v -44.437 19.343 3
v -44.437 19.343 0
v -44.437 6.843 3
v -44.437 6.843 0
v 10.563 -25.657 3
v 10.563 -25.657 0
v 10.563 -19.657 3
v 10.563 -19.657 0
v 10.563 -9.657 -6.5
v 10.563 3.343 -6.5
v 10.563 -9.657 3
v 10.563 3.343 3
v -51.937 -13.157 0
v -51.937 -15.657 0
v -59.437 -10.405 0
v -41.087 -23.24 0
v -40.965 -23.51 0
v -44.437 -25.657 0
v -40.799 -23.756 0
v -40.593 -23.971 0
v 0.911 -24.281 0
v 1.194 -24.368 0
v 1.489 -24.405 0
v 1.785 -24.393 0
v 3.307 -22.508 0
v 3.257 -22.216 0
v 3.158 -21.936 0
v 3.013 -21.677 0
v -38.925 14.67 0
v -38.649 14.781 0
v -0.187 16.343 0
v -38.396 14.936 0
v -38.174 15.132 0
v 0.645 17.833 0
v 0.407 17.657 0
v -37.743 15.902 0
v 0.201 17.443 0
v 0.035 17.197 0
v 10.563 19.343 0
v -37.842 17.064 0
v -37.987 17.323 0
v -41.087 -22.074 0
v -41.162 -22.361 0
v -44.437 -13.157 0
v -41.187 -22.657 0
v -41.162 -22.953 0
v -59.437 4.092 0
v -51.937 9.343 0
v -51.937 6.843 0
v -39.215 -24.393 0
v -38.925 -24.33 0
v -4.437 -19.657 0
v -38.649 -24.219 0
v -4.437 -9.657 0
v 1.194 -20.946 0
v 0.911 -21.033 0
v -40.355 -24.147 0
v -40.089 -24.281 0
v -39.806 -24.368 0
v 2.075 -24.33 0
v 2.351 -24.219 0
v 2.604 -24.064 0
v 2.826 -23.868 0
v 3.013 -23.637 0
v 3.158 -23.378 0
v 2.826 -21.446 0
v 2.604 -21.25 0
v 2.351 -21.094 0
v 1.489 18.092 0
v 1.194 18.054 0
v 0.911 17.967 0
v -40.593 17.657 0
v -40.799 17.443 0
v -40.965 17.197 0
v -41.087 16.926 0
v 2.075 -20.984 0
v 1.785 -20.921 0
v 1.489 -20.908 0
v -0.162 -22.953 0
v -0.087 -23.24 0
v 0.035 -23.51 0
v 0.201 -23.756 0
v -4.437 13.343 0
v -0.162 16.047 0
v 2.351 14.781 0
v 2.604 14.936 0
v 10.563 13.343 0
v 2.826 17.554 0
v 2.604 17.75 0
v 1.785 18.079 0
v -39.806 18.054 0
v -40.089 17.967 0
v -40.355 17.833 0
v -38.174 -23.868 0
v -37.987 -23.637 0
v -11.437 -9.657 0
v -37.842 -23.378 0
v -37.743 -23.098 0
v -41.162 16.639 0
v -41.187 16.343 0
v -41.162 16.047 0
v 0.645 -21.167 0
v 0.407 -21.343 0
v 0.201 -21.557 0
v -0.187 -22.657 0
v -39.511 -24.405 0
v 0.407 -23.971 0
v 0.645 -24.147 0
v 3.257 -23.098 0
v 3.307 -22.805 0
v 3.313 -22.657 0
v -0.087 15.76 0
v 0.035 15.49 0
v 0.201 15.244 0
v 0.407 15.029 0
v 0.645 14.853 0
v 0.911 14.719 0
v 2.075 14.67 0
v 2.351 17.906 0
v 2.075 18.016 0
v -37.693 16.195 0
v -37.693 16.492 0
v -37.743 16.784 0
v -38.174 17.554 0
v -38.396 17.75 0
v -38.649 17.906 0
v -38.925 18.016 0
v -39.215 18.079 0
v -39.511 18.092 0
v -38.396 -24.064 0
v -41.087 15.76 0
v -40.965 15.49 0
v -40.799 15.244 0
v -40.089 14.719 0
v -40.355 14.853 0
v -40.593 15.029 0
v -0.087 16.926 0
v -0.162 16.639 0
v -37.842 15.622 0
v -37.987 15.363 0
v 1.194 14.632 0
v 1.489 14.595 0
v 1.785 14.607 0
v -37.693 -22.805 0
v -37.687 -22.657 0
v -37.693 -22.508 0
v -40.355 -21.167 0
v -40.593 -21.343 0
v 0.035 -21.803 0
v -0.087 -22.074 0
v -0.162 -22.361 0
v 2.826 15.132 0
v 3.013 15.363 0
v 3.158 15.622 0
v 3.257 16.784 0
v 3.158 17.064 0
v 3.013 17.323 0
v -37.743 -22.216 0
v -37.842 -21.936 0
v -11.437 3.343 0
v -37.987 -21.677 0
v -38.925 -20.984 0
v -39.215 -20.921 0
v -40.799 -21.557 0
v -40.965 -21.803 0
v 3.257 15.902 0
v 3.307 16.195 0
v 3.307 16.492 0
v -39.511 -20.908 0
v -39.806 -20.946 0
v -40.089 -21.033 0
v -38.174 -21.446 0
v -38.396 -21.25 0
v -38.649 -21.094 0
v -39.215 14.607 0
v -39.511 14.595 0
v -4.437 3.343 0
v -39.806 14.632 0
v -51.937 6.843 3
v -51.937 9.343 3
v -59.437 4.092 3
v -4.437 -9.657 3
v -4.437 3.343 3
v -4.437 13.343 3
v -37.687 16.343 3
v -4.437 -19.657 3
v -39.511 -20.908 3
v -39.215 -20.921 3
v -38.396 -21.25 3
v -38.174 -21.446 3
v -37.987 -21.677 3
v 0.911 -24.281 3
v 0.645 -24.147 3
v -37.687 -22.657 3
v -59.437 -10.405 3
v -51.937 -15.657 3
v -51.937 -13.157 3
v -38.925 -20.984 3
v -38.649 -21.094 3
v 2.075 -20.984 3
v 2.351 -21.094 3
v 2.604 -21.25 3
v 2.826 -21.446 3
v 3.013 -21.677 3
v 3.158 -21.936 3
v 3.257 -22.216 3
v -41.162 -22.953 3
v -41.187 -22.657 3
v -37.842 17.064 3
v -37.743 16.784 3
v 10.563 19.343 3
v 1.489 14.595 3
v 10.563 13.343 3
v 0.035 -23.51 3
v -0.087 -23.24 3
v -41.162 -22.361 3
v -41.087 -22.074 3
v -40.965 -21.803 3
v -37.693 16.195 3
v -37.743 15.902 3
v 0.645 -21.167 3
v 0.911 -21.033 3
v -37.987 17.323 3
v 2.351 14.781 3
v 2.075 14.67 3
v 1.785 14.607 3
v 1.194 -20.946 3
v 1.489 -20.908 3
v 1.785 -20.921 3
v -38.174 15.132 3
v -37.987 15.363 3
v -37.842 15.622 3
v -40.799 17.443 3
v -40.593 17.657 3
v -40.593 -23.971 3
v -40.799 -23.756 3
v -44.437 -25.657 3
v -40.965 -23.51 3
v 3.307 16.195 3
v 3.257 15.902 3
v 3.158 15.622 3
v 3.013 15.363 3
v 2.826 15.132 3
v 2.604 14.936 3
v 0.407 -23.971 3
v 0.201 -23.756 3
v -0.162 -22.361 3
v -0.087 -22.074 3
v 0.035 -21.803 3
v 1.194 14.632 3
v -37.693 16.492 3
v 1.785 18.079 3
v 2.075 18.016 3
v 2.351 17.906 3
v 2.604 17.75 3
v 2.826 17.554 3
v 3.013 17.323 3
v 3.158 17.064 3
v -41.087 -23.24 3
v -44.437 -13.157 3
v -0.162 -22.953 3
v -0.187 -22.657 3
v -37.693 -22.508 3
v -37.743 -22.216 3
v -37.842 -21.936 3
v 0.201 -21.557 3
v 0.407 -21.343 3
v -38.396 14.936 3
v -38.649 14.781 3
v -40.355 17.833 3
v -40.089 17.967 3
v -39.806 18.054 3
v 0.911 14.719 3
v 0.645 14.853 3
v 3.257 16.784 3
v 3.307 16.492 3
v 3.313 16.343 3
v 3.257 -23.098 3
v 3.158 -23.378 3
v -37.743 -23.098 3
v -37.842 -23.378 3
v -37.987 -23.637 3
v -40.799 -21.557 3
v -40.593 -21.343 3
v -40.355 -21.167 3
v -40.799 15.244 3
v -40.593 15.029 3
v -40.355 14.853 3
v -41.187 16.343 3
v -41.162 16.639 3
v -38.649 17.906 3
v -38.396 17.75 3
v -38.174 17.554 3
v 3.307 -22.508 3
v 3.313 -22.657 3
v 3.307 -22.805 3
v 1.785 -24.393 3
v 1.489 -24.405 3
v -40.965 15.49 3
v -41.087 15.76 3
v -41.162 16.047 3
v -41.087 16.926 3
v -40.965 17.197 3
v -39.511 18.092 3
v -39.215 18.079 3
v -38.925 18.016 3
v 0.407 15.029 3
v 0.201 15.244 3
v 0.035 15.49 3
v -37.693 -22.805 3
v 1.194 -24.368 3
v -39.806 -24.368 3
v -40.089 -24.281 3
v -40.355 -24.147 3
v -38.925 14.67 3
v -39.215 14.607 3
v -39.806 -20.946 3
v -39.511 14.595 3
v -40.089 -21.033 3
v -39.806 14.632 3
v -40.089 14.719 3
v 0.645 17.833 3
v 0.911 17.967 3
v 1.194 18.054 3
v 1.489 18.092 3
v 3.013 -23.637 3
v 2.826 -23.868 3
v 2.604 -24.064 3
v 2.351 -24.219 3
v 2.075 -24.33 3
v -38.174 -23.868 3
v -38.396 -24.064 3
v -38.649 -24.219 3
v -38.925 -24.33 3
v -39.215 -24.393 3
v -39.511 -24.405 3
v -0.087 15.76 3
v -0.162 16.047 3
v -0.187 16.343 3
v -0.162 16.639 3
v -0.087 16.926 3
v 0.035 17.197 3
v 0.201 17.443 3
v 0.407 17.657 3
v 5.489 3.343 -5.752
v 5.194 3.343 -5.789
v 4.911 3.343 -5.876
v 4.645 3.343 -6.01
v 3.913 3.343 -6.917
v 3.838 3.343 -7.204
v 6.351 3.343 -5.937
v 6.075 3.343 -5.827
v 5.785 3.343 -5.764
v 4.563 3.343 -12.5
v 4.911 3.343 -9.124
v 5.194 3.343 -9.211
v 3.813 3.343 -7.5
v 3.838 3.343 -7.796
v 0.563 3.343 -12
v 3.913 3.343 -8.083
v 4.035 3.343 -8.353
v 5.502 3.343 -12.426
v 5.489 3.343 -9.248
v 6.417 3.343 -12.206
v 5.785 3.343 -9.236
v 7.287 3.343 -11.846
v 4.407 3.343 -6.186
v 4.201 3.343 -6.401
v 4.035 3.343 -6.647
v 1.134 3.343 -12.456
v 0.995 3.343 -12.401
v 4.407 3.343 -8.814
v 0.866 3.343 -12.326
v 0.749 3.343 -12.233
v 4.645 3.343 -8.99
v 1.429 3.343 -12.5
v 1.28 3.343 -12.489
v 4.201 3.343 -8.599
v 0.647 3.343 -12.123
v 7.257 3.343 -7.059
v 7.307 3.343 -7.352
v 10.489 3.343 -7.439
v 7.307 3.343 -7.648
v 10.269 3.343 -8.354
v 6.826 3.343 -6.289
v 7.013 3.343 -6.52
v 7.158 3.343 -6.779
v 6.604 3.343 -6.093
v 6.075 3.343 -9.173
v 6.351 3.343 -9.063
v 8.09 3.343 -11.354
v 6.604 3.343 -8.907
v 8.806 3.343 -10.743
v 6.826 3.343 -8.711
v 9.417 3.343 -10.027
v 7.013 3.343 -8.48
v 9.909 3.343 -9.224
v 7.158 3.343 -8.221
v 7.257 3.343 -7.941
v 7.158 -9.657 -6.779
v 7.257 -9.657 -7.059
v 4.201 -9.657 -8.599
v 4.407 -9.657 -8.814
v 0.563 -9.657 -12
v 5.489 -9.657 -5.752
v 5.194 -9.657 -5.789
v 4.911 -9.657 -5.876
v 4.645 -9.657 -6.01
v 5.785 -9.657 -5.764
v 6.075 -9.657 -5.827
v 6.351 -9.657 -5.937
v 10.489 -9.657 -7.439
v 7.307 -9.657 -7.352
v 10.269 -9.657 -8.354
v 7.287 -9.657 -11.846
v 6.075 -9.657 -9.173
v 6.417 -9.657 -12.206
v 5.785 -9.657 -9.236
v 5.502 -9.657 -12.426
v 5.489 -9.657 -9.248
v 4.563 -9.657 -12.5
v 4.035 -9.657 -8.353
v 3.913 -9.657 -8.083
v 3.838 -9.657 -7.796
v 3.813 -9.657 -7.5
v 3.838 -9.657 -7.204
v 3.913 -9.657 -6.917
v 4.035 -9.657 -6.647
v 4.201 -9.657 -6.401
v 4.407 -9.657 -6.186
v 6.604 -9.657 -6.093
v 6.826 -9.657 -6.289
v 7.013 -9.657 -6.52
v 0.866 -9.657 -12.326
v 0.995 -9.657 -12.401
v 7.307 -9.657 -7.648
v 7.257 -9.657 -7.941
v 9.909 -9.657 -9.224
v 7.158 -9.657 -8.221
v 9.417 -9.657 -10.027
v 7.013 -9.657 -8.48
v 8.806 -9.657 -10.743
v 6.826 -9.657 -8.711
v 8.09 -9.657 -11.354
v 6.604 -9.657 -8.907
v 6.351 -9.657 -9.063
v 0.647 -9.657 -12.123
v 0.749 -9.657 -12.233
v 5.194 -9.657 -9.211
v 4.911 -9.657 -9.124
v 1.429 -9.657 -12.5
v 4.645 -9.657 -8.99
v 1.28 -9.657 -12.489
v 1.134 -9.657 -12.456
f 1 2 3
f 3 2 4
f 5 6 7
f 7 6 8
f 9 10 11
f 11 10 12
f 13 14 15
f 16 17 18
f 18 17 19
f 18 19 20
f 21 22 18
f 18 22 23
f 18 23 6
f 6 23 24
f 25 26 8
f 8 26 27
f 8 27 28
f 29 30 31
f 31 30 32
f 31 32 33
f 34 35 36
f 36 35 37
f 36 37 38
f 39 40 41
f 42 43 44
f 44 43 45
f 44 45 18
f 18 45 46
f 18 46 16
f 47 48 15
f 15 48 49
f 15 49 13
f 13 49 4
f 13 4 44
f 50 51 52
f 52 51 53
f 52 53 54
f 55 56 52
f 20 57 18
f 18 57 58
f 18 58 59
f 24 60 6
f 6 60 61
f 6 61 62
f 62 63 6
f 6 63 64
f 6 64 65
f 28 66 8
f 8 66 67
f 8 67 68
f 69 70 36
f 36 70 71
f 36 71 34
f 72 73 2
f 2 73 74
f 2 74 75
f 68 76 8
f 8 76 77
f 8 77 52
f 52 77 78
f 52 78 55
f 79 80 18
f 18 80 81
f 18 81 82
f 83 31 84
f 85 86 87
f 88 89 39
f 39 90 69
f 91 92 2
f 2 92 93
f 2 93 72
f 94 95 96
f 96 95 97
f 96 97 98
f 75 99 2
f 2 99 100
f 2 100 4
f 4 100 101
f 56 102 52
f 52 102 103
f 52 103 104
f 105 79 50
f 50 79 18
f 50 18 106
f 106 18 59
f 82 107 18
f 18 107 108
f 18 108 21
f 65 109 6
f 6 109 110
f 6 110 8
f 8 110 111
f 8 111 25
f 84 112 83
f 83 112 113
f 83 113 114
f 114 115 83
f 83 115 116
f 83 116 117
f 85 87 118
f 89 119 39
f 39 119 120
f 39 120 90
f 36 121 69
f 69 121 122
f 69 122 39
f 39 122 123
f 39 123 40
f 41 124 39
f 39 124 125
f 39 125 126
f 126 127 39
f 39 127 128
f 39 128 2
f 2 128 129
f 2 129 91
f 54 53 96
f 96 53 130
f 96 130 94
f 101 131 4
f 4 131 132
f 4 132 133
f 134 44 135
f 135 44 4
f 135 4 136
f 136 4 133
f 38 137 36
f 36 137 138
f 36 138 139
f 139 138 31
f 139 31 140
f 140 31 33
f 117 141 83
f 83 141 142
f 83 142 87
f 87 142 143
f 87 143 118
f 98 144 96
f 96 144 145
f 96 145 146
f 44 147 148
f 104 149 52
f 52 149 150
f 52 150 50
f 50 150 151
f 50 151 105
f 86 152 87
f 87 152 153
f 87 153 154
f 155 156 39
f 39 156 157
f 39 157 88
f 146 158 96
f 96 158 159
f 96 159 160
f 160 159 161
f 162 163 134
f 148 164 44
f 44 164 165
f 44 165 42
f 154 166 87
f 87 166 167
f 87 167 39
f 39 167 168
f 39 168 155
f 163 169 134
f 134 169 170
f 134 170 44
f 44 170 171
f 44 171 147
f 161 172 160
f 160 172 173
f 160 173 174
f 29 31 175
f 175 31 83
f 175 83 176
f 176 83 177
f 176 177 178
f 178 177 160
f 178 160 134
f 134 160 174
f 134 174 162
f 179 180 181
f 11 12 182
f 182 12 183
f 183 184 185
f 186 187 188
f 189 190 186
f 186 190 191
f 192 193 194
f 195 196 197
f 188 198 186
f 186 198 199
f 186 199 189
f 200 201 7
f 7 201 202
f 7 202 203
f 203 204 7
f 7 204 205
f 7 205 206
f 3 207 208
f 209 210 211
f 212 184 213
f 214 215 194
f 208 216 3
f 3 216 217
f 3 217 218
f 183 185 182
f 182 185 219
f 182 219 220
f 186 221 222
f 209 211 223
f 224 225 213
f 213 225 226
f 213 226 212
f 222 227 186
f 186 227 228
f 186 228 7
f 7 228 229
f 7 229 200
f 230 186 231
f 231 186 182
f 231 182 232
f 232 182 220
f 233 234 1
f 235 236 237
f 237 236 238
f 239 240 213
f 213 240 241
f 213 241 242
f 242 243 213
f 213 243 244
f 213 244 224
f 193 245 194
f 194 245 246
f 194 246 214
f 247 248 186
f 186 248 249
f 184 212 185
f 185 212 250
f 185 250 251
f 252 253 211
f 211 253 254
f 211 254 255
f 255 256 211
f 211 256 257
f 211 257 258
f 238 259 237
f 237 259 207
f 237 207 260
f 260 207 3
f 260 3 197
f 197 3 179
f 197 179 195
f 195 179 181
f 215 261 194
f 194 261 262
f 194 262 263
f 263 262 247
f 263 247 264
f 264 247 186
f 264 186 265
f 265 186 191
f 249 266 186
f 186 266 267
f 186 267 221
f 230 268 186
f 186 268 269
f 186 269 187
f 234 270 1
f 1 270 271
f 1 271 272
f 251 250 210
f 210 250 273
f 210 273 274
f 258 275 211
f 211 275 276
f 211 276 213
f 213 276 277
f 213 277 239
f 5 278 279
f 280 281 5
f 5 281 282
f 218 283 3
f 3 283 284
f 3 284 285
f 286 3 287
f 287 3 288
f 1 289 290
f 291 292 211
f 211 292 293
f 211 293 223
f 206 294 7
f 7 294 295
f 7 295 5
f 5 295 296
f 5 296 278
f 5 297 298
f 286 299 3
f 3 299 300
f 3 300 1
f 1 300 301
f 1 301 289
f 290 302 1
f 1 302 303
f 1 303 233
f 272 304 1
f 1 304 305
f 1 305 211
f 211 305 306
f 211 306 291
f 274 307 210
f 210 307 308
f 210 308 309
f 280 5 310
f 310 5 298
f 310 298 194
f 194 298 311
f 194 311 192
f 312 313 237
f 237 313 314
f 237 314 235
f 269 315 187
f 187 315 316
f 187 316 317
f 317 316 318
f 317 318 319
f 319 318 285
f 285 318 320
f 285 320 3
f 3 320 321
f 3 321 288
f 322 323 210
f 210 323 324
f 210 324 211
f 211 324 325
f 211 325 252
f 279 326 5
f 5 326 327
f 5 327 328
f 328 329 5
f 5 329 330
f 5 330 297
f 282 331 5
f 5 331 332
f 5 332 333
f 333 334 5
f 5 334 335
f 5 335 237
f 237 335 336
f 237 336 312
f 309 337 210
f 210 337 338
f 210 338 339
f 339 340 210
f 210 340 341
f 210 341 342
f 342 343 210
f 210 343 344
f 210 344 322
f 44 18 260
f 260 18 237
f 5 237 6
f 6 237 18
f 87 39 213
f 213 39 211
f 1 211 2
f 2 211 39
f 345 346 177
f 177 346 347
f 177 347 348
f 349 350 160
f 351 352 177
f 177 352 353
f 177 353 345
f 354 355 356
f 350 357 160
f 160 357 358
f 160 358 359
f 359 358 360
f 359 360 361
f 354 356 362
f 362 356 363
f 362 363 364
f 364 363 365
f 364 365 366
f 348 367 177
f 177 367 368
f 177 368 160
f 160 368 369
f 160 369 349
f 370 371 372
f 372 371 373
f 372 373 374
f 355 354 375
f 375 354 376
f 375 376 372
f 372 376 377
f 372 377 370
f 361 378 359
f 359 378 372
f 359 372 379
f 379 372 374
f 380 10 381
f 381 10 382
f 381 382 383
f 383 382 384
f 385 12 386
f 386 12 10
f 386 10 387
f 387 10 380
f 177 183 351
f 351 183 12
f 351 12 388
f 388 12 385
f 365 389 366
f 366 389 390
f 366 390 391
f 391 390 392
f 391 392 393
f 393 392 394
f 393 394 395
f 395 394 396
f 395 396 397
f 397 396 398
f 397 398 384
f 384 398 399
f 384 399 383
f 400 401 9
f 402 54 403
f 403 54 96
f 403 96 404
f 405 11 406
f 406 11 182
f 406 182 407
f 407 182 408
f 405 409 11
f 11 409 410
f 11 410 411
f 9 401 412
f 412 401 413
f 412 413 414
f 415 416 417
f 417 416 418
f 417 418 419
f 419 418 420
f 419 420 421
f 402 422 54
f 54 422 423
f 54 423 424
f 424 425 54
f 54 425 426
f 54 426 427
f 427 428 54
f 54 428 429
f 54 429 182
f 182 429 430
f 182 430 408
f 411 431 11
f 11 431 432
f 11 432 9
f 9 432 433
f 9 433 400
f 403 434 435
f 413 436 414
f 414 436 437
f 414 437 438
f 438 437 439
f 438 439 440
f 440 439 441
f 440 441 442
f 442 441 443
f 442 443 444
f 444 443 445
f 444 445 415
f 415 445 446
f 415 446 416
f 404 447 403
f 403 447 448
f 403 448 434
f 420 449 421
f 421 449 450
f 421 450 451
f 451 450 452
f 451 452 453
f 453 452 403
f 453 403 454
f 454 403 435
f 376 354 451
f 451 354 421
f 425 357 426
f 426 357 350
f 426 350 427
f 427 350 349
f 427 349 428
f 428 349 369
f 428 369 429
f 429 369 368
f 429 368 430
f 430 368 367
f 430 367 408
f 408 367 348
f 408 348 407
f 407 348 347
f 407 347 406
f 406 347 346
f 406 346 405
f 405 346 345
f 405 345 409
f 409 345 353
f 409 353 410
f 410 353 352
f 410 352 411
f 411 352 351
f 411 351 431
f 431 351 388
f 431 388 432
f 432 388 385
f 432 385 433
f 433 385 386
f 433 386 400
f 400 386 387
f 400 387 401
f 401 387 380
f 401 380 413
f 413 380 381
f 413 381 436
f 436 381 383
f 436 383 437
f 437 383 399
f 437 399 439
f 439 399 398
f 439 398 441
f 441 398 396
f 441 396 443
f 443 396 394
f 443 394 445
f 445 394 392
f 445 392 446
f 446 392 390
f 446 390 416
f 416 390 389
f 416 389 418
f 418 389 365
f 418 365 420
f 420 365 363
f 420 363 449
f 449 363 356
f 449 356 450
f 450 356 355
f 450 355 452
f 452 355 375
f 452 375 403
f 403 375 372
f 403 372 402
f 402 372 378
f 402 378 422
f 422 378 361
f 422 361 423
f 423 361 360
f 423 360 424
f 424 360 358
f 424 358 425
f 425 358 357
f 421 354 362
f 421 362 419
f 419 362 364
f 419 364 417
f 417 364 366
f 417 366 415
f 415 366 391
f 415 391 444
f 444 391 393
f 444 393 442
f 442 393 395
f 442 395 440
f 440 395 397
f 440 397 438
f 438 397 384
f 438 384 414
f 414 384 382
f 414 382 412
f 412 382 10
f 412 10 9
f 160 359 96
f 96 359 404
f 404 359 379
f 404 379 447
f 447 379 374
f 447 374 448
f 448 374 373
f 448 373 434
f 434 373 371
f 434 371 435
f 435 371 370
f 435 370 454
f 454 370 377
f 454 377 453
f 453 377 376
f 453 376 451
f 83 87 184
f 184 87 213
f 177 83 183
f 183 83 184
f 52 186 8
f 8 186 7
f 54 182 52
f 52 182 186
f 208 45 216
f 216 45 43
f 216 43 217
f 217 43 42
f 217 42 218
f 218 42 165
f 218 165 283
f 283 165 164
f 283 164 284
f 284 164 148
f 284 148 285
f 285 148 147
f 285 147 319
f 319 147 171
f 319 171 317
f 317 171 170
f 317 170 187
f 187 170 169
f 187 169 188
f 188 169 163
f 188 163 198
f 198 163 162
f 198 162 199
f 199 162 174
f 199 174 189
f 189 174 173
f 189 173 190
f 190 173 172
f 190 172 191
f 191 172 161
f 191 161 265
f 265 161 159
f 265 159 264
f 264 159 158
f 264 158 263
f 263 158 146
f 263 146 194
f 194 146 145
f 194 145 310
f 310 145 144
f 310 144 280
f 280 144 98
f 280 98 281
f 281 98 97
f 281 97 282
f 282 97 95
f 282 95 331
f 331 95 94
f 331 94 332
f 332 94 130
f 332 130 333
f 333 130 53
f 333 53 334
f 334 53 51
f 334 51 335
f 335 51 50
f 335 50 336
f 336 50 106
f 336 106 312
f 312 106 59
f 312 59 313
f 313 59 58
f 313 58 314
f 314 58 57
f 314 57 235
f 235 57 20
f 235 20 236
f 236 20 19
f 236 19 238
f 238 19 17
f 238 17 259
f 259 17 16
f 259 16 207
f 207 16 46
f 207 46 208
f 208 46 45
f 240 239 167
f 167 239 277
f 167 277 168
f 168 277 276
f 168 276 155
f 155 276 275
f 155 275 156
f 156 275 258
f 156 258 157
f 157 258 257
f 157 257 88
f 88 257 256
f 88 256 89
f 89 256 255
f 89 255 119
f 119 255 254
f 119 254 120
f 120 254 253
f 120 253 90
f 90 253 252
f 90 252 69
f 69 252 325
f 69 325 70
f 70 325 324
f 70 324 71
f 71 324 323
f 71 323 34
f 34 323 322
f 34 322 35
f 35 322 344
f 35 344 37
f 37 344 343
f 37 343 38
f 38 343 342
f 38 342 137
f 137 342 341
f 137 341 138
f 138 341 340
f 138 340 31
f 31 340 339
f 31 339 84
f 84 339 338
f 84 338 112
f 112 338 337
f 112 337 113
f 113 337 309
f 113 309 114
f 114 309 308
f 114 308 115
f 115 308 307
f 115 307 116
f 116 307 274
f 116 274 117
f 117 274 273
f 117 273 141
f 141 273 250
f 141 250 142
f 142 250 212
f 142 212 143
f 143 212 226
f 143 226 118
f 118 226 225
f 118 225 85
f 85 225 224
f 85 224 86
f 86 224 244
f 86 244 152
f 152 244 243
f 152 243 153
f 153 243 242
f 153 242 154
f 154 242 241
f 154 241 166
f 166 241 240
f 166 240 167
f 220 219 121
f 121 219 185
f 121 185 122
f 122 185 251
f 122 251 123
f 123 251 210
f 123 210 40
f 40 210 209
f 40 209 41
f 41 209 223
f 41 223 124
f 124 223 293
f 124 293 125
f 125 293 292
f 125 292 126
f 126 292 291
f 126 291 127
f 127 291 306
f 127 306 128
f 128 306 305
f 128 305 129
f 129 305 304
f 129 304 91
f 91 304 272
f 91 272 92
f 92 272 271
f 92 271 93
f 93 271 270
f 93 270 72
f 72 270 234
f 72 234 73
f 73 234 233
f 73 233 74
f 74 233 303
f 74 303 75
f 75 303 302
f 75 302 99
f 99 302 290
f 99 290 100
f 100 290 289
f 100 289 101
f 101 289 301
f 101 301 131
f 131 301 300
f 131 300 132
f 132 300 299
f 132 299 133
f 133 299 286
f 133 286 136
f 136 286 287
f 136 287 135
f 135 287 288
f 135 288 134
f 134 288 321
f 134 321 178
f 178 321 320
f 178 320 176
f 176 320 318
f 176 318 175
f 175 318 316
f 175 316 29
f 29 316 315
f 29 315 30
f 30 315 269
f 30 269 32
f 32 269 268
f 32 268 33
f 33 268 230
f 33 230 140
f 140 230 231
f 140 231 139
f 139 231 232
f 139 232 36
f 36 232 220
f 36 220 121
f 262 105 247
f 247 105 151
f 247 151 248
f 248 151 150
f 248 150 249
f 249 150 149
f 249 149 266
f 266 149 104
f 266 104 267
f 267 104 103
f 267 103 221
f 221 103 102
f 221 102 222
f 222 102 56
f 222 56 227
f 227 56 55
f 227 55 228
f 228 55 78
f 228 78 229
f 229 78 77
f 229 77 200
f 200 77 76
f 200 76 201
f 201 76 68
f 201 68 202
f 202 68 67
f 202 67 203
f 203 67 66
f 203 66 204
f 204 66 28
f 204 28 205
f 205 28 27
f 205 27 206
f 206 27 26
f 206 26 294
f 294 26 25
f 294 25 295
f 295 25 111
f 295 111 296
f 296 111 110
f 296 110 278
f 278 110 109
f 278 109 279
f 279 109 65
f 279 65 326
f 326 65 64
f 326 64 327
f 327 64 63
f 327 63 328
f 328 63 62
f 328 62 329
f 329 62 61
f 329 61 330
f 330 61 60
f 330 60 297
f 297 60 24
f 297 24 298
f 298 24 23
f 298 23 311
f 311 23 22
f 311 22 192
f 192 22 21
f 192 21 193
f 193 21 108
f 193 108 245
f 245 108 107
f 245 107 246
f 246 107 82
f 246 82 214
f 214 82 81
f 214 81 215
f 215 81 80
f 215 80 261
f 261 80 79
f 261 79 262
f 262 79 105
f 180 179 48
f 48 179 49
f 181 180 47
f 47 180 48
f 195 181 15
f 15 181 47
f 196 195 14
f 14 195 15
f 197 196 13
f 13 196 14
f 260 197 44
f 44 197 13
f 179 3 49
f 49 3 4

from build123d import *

# Parameters (mm, degrees)
SKETCH1_W           = 55
SKETCH1_H           = 45
BOSS_EXTRUDE1_DEPTH = 3
SKETCH2_W           = 10
SKETCH2_H           = 13
BOSS_EXTRUDE2_DEPTH = 12.5
SKETCH3_R           = 1.75
CUT_EXTRUDE1_DEPTH  = 13.5
FILLET1_R           = 6
CHAMFER1_SIZE       = 12
FILLET3_R           = 1
SKETCH4_W           = 20
SKETCH4_H           = 10
CUT_EXTRUDE3_DEPTH  = 5
SKETCH7_R           = 1.75
CUT_EXTRUDE4_DEPTH  = 5
BOSS_EXTRUDE4_DEPTH = 3


with BuildPart() as part:
    # Sketch1 → Boss-Extrude1 (new body)
    with BuildSketch(Plane.XY):
        with Locations((-16.936997319, -3.156836461)):
            Rectangle(SKETCH1_W, SKETCH1_H)
    extrude(amount=BOSS_EXTRUDE1_DEPTH)

    # Sketch2 → Boss-Extrude2 (add)
    with BuildSketch(Plane(origin=(0, 0, 0), x_dir=(-1, 0, 0), z_dir=(0, 0, -1))):
        with Locations((-5.563002681, -3.156836461)):
            Rectangle(SKETCH2_W, SKETCH2_H)
    extrude(amount=BOSS_EXTRUDE2_DEPTH)

    # Sketch3 → Cut-Extrude1 (cut)
    with BuildSketch(Plane(origin=(0, 3.343163539, 0), x_dir=(1, 0, 0), z_dir=(0, 1, 0))):
        with Locations(Location((5.563002681, 7.5, 0), (0, 0, 180))):
            Circle(SKETCH3_R)
    extrude(amount=-CUT_EXTRUDE1_DEPTH, mode=Mode.SUBTRACT)

    # Fillet1
    fillet1_edges = [part.edges().sort_by_distance(p)[0] for p in [
        (10.563002681, -3.156836461, -12.5),
    ]]
    fillet(fillet1_edges, radius=FILLET1_R)

    # Chamfer1
    chamfer1_edges = [part.edges().sort_by_distance(p)[0] for p in [
        (0.563002681, -3.156836461, 0),
    ]]
    chamfer(chamfer1_edges, length=CHAMFER1_SIZE)

    # Fillet3
    # the kernel refuses this fillet: 1 mm, written as the material it takes off along each edge
    with BuildSketch(Plane(origin=(0.563002681, 5.508227048, -12.5), x_dir=(1, 0, 0), z_dir=(0, -1, 0))) as fillet3_piece_1:
        with BuildLine():
            CenterArc((0.866025404, 1), FILLET3_R, 210, 60)
            Line((0, 0.5), (-0.017320508, 0.49))
            ThreePointArc((-0.017320508, 0.49), (-0.02, 0.25), (-0.02, 0))
            Line((-0.02, 0), (0, -0.02))
            Line((0, -0.02), (0.866025404, -0.02))
            Line((0.866025404, -0.02), (0.866025404, 0))
        make_face()
    extrude(amount=17.330127019, mode=Mode.SUBTRACT)

    # Sketch4 → Cut-Extrude3 (cut)
    with BuildSketch(Plane(origin=(0, 0, 0), x_dir=(-1, 0, 0), z_dir=(0, 0, -1))):
        with Locations((-5.563002681, 8.343163539)):
            Rectangle(SKETCH4_W, SKETCH4_H)
    cut_extrude3 = extrude(amount=-CUT_EXTRUDE3_DEPTH, mode=Mode.SUBTRACT)

    # Mirror2: Cut-Extrude3 across plane
    add(cut_extrude3.mirror(Plane.ZX.offset(-3.156836461)), mode=Mode.SUBTRACT)

    # Sketch7 → Cut-Extrude4 (cut)
    with BuildSketch(Plane(origin=(0, 0, 0), x_dir=(-1, 0, 0), z_dir=(0, 0, -1))):
        with Locations((-1.563002681, 16.343163539)):
            Circle(SKETCH7_R)
        with Locations((39.436997319, 16.343163539)):
            Circle(SKETCH7_R)
        with Locations(Location((39.436997319, -22.656836461, 0), (0, 0, 180))):
            Circle(SKETCH7_R)
        with Locations(Location((-1.563002681, -22.656836461, 0), (0, 0, 180))):
            Circle(SKETCH7_R)
    extrude(amount=-CUT_EXTRUDE4_DEPTH, mode=Mode.SUBTRACT)

    # Sketch8 → Boss-Extrude4 (add)
    with BuildSketch(Plane(origin=(0, 0, 0), x_dir=(-1, 0, 0), z_dir=(0, 0, -1))):
        Polygon((44.436997319, 6.843163539), (51.936997319, 6.843163539), (51.936997319, 9.343163539), (59.436997319, 4.091607002), (59.436997319, -10.405279925), (51.936997319, -15.656836461), (51.936997319, -13.156836461), (44.436997319, -13.156836461), align=None)
    extrude(amount=-BOSS_EXTRUDE4_DEPTH)


solid = part.part
